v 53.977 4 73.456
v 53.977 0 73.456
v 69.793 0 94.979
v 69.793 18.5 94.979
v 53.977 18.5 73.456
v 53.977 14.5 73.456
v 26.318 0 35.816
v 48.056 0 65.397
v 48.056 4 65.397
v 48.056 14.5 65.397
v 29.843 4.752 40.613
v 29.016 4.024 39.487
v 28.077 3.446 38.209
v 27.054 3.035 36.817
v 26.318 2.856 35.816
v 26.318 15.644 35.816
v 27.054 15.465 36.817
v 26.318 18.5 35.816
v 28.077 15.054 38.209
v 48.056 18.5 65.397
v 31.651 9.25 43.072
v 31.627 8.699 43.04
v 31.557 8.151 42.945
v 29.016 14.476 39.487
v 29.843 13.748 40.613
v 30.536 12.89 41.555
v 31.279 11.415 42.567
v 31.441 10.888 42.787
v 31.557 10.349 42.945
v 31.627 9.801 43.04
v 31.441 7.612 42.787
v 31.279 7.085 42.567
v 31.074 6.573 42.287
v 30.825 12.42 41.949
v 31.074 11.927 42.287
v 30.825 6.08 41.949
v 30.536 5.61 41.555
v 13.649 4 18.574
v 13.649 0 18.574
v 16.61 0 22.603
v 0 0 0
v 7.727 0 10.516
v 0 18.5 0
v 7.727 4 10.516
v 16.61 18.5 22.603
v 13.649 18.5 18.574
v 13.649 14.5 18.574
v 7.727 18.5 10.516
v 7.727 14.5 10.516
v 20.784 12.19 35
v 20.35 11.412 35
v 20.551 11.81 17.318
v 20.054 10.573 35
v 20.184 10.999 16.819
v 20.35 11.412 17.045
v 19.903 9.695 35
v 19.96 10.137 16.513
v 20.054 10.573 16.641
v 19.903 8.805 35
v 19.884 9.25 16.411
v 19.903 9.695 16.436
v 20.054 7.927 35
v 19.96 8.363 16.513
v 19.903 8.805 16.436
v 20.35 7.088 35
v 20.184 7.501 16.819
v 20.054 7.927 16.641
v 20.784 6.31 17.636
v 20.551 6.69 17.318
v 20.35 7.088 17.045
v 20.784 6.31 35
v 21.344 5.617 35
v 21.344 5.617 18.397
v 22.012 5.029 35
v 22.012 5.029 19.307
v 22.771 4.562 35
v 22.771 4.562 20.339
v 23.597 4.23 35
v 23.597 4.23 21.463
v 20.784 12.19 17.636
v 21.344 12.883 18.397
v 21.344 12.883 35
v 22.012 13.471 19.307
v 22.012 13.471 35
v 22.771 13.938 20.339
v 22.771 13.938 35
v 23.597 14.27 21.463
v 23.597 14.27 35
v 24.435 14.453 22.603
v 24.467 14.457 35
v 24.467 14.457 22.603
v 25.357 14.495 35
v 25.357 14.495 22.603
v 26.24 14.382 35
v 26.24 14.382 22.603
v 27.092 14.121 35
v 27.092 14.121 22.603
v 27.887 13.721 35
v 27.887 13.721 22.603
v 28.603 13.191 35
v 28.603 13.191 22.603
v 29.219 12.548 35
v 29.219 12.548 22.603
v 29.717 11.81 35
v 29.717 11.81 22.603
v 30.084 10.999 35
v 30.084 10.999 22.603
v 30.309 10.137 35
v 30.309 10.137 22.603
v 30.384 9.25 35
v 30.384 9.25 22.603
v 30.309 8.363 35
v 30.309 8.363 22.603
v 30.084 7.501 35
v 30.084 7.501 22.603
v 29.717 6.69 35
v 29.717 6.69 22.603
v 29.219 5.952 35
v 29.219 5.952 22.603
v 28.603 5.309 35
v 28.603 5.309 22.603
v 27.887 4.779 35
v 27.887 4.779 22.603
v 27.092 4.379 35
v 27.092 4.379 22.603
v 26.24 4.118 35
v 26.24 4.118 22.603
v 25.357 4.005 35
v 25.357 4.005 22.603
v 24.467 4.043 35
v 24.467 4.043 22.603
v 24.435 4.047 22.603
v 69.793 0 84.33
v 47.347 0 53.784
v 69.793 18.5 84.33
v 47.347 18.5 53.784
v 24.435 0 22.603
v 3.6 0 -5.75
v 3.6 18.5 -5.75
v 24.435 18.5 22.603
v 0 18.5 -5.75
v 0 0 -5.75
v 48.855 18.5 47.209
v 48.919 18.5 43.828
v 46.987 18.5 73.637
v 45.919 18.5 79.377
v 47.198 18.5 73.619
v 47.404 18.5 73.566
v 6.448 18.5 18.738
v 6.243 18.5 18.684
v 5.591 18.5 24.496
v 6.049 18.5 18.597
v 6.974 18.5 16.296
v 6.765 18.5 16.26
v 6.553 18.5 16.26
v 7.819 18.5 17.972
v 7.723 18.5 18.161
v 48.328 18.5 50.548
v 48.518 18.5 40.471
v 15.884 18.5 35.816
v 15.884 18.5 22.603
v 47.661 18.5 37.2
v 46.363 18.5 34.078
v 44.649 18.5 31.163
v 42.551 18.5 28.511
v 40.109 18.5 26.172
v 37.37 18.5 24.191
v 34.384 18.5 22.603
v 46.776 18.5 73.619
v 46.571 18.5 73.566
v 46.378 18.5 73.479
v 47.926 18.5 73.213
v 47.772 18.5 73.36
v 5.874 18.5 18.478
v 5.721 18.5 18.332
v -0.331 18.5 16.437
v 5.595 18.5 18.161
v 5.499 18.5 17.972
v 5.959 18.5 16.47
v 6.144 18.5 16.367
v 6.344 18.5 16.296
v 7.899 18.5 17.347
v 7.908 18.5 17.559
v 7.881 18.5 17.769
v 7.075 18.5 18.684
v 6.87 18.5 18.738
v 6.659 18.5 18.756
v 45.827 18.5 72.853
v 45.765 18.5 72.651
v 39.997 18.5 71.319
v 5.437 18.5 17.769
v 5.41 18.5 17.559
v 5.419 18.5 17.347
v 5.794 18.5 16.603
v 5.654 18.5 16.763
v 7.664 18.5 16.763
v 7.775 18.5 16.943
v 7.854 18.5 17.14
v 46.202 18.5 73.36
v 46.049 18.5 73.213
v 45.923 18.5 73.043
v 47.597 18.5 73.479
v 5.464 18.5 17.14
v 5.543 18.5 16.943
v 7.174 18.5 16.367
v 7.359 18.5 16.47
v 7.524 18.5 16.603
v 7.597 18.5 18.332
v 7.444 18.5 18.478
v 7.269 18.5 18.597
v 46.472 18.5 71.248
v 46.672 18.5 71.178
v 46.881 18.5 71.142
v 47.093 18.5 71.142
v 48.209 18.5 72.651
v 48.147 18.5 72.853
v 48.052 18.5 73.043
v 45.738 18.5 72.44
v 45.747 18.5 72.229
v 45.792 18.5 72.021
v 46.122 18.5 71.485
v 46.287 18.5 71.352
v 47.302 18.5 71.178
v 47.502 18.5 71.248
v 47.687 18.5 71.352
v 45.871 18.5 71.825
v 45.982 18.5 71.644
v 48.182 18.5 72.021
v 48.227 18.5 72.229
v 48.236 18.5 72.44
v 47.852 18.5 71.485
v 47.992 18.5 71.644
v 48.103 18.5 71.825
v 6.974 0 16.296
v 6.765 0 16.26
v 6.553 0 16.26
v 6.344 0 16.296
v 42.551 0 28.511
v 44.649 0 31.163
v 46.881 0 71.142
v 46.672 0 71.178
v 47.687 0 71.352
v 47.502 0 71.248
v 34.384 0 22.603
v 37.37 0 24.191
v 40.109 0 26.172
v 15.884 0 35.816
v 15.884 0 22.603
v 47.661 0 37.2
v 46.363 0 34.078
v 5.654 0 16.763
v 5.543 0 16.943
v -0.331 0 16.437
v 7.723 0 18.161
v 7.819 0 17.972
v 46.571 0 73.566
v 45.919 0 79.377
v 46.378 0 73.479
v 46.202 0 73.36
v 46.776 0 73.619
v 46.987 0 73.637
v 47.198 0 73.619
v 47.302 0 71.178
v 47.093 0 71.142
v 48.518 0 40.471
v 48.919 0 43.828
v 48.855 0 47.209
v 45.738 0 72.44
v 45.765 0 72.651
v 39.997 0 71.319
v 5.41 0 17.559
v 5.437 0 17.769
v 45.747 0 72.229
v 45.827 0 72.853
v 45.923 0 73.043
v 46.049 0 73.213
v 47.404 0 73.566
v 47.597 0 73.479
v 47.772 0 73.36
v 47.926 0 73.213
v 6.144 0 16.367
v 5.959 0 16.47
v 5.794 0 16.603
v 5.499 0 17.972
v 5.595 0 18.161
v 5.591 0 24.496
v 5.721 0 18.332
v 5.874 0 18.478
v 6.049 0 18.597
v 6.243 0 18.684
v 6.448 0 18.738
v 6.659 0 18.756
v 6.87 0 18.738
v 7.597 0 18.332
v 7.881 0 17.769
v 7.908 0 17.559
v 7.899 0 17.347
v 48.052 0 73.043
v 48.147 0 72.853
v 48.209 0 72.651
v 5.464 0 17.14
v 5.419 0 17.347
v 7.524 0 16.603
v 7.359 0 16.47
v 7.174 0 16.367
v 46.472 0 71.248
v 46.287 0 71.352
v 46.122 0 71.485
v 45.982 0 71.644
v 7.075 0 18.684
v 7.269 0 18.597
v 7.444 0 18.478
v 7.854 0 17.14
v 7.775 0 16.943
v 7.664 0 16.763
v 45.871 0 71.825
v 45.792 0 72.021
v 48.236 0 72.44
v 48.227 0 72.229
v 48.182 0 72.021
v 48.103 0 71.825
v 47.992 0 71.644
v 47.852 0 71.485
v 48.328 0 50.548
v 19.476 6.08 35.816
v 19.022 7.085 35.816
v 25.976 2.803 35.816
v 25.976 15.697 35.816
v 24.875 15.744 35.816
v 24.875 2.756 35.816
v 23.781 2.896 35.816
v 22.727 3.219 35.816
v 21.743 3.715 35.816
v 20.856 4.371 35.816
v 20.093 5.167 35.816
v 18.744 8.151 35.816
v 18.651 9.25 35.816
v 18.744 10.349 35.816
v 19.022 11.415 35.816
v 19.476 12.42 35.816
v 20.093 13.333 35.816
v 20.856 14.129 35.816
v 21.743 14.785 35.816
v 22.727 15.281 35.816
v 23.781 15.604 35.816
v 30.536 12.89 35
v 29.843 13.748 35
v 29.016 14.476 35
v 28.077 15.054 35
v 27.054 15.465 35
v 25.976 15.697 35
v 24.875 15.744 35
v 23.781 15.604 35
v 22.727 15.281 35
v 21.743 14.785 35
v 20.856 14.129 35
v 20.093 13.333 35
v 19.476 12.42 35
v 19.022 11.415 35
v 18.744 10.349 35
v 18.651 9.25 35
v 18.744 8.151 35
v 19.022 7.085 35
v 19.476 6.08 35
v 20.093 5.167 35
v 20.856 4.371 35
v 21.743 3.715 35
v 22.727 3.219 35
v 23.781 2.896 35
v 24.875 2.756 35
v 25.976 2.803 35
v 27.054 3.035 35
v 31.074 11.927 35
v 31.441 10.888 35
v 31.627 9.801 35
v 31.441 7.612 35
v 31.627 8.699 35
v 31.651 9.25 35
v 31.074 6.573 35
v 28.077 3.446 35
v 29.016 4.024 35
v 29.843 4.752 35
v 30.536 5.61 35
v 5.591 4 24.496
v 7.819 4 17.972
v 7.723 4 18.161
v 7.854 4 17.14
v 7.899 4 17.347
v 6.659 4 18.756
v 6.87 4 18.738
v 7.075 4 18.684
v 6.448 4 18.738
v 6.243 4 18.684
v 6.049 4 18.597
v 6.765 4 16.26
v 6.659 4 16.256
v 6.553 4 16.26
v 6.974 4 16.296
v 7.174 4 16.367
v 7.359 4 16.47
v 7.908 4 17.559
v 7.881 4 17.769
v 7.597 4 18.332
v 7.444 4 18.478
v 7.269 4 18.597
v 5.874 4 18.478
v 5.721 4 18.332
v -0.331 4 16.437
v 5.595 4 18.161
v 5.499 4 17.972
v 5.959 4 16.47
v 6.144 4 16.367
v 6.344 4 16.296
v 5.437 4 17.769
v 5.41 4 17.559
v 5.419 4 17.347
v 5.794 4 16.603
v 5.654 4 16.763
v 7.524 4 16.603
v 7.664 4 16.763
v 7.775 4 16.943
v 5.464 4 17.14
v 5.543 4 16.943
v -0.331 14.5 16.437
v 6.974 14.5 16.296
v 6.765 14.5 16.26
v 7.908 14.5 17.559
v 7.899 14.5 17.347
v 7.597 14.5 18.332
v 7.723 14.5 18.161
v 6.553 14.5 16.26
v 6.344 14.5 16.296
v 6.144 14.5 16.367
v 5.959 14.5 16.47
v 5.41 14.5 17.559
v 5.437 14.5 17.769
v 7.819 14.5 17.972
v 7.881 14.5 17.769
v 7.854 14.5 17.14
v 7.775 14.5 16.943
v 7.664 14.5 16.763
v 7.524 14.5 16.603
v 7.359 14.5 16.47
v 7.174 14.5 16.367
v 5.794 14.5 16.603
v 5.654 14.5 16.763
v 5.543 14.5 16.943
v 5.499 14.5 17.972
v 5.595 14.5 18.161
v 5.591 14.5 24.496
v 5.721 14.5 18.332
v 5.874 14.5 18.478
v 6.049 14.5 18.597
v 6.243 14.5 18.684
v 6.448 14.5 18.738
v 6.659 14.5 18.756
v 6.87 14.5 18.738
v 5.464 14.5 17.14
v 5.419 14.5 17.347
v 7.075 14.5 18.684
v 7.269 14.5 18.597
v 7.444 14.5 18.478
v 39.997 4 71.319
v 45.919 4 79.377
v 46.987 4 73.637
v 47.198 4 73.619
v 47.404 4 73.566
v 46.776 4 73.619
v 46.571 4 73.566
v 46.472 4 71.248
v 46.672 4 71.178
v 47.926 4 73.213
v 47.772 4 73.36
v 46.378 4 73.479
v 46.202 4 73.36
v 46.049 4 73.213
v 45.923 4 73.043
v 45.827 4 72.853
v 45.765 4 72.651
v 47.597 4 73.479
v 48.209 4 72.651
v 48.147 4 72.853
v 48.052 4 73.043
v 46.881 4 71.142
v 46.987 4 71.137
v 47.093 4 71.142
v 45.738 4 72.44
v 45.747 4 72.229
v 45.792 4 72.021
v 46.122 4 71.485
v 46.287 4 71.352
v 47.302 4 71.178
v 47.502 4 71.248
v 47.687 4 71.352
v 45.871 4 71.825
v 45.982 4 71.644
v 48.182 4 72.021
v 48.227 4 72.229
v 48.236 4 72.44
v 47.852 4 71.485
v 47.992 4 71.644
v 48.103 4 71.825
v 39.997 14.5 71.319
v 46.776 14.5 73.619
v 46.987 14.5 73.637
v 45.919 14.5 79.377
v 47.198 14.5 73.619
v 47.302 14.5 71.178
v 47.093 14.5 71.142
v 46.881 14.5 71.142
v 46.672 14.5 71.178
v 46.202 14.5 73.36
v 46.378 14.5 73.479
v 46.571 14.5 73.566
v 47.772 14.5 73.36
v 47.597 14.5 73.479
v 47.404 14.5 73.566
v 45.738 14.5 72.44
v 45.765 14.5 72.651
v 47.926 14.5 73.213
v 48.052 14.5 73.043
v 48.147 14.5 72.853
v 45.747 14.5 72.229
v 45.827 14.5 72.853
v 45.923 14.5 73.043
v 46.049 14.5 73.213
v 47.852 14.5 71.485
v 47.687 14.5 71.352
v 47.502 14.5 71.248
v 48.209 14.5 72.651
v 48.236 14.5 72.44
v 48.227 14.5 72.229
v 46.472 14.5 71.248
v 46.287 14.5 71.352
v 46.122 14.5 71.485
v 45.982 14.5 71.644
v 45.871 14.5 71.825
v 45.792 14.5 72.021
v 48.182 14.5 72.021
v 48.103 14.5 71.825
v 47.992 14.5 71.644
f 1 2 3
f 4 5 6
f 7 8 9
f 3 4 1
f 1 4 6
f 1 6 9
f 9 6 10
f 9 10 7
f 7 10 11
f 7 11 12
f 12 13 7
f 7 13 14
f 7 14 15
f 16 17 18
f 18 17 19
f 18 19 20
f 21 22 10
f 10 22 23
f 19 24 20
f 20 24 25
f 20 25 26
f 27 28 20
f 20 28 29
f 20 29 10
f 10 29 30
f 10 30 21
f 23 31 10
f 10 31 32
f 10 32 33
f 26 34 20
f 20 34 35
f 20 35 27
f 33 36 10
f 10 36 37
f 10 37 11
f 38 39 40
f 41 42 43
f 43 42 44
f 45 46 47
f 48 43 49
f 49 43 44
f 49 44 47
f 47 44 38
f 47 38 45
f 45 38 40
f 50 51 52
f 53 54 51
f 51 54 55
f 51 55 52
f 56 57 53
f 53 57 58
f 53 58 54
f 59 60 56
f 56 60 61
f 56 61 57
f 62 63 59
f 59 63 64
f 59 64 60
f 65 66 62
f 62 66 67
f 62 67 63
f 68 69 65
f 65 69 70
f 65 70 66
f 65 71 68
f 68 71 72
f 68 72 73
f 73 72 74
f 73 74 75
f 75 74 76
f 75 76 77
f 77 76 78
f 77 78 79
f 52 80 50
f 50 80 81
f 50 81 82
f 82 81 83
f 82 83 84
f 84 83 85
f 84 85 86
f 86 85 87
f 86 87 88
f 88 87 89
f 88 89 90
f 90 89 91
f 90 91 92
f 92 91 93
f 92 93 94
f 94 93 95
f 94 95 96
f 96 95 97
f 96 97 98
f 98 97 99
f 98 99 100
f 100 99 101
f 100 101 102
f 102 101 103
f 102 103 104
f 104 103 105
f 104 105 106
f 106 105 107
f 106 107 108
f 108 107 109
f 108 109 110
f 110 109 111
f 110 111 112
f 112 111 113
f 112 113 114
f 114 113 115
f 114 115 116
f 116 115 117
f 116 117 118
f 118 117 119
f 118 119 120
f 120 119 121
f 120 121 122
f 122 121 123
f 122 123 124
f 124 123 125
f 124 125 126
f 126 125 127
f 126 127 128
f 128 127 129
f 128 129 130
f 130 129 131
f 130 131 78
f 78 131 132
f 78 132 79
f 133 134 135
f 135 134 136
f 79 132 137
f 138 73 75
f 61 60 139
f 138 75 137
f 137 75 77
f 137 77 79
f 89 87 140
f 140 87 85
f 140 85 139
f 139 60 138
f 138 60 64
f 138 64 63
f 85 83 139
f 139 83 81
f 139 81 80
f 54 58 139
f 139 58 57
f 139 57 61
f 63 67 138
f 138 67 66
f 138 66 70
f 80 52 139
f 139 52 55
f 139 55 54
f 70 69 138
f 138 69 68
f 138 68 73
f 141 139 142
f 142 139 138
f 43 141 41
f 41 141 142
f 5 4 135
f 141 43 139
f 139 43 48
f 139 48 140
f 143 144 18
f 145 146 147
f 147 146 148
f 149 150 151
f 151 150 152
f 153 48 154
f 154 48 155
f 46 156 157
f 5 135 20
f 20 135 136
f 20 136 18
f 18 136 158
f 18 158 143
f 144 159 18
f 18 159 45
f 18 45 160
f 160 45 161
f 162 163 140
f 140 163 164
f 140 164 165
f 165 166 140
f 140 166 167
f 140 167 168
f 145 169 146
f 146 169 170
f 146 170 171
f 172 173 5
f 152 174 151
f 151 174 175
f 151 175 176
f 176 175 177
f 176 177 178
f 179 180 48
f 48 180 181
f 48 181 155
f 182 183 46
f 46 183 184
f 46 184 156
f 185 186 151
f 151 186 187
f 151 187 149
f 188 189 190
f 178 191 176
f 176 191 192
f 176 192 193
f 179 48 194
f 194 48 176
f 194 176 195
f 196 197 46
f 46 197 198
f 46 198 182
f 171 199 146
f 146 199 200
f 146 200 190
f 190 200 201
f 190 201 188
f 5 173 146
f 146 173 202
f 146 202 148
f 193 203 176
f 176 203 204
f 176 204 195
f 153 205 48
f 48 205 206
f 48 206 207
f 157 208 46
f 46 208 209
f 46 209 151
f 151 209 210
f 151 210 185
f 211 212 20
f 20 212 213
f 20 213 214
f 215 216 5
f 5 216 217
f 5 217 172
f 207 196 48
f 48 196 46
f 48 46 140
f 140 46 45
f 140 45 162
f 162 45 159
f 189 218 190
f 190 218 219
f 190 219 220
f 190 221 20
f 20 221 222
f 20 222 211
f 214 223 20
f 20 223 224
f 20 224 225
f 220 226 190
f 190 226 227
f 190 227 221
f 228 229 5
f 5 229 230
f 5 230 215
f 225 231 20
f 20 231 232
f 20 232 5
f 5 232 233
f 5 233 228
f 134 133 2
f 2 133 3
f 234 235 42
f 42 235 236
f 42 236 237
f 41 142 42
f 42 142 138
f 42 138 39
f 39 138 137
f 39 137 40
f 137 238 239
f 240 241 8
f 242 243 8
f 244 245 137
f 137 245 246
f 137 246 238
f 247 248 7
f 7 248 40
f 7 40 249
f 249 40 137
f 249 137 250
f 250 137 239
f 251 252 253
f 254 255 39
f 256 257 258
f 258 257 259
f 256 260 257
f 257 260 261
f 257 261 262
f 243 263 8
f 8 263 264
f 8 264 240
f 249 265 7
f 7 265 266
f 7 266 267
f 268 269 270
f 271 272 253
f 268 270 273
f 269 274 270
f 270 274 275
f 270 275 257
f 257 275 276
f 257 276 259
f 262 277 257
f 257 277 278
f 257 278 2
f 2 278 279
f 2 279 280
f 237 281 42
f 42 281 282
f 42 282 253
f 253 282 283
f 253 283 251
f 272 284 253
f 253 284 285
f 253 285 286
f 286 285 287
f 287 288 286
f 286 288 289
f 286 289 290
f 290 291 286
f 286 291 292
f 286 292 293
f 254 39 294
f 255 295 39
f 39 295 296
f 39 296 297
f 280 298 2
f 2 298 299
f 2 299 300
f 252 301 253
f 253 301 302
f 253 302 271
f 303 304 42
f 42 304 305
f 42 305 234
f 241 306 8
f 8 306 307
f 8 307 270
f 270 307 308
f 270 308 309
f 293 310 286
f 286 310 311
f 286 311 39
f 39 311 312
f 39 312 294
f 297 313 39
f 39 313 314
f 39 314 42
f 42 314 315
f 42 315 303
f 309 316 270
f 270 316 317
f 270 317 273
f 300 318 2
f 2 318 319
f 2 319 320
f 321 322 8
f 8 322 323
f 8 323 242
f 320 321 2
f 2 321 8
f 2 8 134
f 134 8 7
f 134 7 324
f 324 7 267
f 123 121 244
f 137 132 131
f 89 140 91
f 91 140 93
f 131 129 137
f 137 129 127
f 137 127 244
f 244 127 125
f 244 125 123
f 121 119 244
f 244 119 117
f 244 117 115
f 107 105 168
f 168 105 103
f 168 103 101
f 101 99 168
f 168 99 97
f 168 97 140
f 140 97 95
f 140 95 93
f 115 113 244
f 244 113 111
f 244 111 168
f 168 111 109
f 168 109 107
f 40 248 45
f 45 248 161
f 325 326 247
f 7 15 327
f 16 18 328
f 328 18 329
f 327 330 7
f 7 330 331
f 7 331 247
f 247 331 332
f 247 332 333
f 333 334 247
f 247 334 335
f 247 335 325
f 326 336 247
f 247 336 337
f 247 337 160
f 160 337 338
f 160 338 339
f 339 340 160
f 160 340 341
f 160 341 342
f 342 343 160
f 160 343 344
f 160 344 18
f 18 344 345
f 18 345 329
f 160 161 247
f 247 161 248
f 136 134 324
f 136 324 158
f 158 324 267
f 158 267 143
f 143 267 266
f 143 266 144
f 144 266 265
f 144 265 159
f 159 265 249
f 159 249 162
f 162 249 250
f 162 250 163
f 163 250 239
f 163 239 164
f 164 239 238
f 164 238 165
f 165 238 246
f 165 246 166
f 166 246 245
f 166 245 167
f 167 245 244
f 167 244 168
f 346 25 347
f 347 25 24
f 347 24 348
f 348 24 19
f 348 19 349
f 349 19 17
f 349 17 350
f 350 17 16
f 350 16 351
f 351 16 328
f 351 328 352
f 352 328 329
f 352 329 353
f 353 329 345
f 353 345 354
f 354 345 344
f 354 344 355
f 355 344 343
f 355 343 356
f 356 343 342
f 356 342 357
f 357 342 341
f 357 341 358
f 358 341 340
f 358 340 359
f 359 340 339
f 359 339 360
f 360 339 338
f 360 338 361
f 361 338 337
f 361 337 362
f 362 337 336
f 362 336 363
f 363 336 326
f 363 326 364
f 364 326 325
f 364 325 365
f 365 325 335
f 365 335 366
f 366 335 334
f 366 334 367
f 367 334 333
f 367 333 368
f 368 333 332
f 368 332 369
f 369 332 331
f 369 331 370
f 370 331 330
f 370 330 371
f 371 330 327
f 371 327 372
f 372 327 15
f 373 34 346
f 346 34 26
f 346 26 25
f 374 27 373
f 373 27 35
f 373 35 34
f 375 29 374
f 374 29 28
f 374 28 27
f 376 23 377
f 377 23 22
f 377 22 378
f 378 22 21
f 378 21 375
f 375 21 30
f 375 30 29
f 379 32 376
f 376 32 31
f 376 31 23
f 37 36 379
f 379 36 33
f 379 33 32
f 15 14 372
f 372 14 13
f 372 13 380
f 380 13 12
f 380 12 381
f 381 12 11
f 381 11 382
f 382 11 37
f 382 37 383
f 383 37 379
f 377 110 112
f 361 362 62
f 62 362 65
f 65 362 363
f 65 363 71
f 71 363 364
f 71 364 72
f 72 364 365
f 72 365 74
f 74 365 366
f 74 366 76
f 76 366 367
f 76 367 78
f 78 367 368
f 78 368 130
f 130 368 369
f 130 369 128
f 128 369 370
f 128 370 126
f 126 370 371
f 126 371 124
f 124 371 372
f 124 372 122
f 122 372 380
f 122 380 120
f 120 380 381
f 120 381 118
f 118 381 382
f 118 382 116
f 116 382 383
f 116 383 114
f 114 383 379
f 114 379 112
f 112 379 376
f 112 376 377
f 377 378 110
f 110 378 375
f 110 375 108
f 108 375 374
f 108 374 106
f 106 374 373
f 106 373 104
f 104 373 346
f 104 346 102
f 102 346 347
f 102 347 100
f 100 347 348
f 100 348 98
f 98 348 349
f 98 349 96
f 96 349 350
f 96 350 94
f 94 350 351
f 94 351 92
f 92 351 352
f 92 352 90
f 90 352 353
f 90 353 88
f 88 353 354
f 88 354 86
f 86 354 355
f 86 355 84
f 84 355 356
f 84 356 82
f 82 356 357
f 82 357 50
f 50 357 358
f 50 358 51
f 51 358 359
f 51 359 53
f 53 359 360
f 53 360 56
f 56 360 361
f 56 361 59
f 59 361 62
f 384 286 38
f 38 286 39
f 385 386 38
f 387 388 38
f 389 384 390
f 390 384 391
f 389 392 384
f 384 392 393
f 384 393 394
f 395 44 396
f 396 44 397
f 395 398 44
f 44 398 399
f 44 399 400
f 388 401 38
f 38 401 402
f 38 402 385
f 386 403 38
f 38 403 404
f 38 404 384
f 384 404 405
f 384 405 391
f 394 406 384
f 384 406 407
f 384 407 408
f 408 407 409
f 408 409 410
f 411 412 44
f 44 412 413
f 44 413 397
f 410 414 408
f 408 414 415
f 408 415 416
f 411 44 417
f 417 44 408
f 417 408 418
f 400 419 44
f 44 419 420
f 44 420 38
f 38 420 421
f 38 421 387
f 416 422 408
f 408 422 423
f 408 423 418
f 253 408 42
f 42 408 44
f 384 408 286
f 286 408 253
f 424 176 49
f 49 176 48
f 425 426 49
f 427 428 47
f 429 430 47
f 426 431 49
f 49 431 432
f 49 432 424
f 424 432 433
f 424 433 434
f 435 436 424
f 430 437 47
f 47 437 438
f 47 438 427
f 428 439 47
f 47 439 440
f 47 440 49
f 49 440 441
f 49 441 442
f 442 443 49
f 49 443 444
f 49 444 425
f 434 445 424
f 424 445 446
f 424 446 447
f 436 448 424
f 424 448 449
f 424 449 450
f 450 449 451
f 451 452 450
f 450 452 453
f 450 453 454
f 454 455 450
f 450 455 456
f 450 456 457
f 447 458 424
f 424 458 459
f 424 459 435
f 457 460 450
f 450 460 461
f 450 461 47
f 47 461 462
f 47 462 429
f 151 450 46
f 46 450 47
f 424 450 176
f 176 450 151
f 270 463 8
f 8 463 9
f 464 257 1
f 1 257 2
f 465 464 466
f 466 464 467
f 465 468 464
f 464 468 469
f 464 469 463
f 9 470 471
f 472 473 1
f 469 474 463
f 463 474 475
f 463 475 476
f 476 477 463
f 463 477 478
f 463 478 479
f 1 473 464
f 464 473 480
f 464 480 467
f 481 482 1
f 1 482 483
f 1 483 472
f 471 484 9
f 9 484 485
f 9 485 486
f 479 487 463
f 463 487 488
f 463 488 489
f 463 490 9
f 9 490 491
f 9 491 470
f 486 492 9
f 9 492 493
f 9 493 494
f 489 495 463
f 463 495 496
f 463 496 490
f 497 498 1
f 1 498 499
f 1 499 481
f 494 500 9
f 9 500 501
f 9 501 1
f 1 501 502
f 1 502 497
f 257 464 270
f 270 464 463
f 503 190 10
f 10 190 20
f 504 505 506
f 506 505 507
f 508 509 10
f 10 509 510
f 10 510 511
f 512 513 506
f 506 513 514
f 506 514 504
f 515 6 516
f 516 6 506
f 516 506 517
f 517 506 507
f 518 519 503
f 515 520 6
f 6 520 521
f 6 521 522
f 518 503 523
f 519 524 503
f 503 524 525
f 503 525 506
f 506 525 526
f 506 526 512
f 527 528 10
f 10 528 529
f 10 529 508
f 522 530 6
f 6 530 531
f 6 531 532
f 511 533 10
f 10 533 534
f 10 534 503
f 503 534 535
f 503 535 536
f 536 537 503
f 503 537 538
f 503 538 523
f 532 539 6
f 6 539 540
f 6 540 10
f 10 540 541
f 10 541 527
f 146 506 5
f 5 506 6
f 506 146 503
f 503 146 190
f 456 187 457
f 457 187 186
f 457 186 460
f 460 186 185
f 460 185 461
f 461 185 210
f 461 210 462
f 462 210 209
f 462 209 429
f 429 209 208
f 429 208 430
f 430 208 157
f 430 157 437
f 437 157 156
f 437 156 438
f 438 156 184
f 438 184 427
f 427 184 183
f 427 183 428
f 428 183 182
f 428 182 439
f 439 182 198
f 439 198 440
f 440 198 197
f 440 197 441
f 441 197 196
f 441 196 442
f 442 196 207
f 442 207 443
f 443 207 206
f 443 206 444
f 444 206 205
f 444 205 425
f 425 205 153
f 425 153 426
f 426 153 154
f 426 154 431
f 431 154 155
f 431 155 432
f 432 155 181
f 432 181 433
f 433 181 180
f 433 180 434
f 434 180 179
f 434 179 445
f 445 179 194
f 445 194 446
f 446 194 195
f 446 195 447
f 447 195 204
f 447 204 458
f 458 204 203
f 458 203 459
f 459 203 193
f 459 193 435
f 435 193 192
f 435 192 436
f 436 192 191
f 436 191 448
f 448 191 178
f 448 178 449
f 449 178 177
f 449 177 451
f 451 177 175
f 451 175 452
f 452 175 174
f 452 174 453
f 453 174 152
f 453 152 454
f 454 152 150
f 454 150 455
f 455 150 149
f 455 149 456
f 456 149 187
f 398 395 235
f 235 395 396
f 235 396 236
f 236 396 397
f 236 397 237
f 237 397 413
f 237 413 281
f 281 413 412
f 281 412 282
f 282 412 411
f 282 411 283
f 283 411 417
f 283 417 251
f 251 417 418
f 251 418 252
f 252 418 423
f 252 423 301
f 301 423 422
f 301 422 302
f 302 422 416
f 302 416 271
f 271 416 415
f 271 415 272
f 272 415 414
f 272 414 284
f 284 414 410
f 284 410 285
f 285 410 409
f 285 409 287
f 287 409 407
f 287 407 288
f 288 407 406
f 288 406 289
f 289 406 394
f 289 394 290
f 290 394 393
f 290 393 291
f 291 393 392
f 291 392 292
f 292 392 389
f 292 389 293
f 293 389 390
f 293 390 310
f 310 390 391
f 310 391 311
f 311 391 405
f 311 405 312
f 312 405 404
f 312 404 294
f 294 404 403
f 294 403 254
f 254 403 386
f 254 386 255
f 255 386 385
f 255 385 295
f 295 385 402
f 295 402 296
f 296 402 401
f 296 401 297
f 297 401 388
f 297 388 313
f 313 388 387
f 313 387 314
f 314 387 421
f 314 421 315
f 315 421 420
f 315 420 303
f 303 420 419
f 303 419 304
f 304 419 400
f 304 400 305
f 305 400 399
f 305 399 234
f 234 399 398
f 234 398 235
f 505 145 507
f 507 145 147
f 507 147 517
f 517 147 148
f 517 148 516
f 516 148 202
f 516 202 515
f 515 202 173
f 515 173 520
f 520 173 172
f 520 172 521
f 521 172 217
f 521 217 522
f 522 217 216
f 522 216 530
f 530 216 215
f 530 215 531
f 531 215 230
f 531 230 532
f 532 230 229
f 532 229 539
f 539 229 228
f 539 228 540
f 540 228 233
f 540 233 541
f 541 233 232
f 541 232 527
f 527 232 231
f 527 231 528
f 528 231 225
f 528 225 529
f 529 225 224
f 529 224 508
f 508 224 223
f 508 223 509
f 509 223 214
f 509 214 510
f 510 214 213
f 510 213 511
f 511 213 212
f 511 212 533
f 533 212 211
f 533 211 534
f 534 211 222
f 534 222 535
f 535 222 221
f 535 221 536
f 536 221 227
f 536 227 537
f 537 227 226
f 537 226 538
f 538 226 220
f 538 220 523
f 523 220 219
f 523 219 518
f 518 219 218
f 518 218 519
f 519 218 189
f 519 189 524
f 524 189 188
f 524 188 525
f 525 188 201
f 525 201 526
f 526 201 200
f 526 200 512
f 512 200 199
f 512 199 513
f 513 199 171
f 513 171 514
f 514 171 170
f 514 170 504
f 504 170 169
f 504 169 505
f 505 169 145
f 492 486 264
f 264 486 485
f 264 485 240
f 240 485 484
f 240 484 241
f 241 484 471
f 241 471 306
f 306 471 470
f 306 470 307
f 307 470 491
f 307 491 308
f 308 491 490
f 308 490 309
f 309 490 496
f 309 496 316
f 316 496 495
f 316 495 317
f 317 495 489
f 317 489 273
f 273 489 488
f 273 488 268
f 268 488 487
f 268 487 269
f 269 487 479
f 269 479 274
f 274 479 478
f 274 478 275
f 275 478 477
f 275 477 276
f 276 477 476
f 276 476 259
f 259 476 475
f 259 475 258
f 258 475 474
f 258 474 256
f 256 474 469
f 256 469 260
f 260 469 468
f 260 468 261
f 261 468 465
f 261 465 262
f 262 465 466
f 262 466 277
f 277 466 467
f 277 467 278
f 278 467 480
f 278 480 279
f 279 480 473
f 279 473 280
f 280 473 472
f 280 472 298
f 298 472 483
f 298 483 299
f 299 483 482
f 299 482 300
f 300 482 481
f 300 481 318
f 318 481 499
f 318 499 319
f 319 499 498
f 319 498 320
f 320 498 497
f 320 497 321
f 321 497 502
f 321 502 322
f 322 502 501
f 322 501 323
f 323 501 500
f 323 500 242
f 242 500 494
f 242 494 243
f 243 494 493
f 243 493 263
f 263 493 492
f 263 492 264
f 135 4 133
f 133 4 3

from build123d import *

# Parameters (mm, degrees)
BOSS_EXTRUDE1_DEPTH     = 18.5
SKETCH2_W               = 18.5
SKETCH2_H               = 13.212440144
BOSS_EXTRUDE2_DEPTH     = 9.25
SKETCH4_R               = 5.25
CUT_EXTRUDE1_DEPTH      = 65.978958769
CUT_EXTRUDE1_DEPTH_BACK = 36.75
BOSS_EXTRUDE3_DEPTH     = 9.25
CUT_EXTRUDE3_START      = 5
SKETCH5_R               = 6.5
CUT_EXTRUDE3_DEPTH      = 11.5
SKETCH7_W               = 10
SKETCH7_H               = 4
BOSS_EXTRUDE4_DEPTH     = 10
SKETCH8_W               = 10
SKETCH8_H               = 4
BOSS_EXTRUDE5_DEPTH     = 10
SKETCH9_R               = 1.25
CUT_EXTRUDE4_DEPTH      = 1
CUT_EXTRUDE4_DEPTH_BACK = 19.5
CUT_EXTRUDE5_REACH      = 20.5


with BuildPart() as part:
    # Sketch1 → Boss-Extrude1 (new body)
    with BuildSketch(Plane(origin=(0, 0, 0), x_dir=(1, 0, 0), z_dir=(0, 1, 0))):
        Polygon((0, 0), (0, 5.75), (3.6, 5.75), (77.618084718, -94.978958769), (69.792845102, -94.978958769), align=None)
    extrude(amount=BOSS_EXTRUDE1_DEPTH)

    # Sketch2 → Boss-Extrude2 (add, symmetric)
    with BuildSketch(Plane(origin=(0, 9.25, 0), x_dir=(1, 0, 0), z_dir=(0, 1, 0))):
        with Locations((25.134167429, -29.209707688)):
            Rectangle(SKETCH2_W, SKETCH2_H)
    extrude(amount=BOSS_EXTRUDE2_DEPTH, both=True)

    # Sketch4 → Cut-Extrude1 (cut, two sides)
    with BuildSketch(Plane.XY.offset(30)) as cut_extrude1_sk:
        with Locations((25.134167429, 9.25)):
            Circle(SKETCH4_R)
    extrude(amount=CUT_EXTRUDE1_DEPTH, mode=Mode.SUBTRACT)
    extrude(cut_extrude1_sk.sketch, amount=-CUT_EXTRUDE1_DEPTH_BACK, mode=Mode.SUBTRACT)

    # Sketch6 → Boss-Extrude3 (add, symmetric)
    with BuildSketch(Plane(origin=(0, 9.25, 0), x_dir=(1, 0, 0), z_dir=(0, 1, 0))):
        with BuildLine():
            Line((34.384167429, -22.603487616), (34.143652987, -35.81592776))
            Line((34.143652987, -35.81592776), (47.347337909, -53.784420719))
            ThreePointArc((47.347337909, -53.784420719), (47.065802481, -35.616343599), (34.384167429, -22.603487616))
        make_face()
    extrude(amount=BOSS_EXTRUDE3_DEPTH, both=True)

    # Sketch5 → Cut-Extrude3 (cut)
    with BuildSketch(Plane.XY.offset(30).offset(CUT_EXTRUDE3_START)):
        with Locations((25.150542623, 9.25)):
            Circle(SKETCH5_R)
    extrude(amount=CUT_EXTRUDE3_DEPTH, mode=Mode.SUBTRACT)

    # Sketch7 → Boss-Extrude4 (add)
    with BuildSketch(Plane(origin=(0, 0, 0), x_dir=(0.592144678, 0, 0.80583167), z_dir=(-0.80583167, 0, 0.592144678))):
        with Locations((18.049887406, 2)):
            Rectangle(SKETCH7_W, SKETCH7_H)
        with Locations((18.049887406, 16.5)):
            Rectangle(SKETCH7_W, SKETCH7_H)
    extrude(amount=BOSS_EXTRUDE4_DEPTH)

    # Sketch8 → Boss-Extrude5 (add)
    with BuildSketch(Plane(origin=(0, 0, 0), x_dir=(0.592144678, 0, 0.80583167), z_dir=(-0.80583167, 0, 0.592144678))):
        with Locations((86.155216017, 2)):
            Rectangle(SKETCH8_W, SKETCH8_H)
        with Locations((86.155216017, 16.5)):
            Rectangle(SKETCH8_W, SKETCH8_H)
    extrude(amount=BOSS_EXTRUDE5_DEPTH)

    # Sketch9 → Cut-Extrude4 (cut, two sides)
    with BuildSketch(Plane(origin=(0, 18.5, 0), x_dir=(1, 0, 0), z_dir=(0, 1, 0))) as cut_extrude4_sk:
        with Locations((6.65898641, -17.505894303)):
            Circle(SKETCH9_R)
        with Locations((46.987194274, -72.387325004)):
            Circle(SKETCH9_R)
    extrude(amount=CUT_EXTRUDE4_DEPTH, mode=Mode.SUBTRACT)
    extrude(cut_extrude4_sk.sketch, amount=-CUT_EXTRUDE4_DEPTH_BACK, mode=Mode.SUBTRACT)

    # Sketch10 → Cut-Extrude5 (cut, up to next)
    with BuildSketch(Plane(origin=(0, 18.5, 0), x_dir=(1, 0, 0), z_dir=(0, 1, 0)), mode=Mode.PRIVATE) as cut_extrude5_sk1:
        Polygon((69.792845102, -84.329828334), (69.792845102, -94.978958769), (77.618084718, -94.978958769), align=None)
    cut_extrude5_tool1 = extrude(cut_extrude5_sk1.sketch, amount=-CUT_EXTRUDE5_REACH, mode=Mode.PRIVATE) & part.part
    add(cut_extrude5_tool1.solids().sort_by_distance((72.401258, 18.5, 91.429249))[0], mode=Mode.SUBTRACT)


solid = part.part
